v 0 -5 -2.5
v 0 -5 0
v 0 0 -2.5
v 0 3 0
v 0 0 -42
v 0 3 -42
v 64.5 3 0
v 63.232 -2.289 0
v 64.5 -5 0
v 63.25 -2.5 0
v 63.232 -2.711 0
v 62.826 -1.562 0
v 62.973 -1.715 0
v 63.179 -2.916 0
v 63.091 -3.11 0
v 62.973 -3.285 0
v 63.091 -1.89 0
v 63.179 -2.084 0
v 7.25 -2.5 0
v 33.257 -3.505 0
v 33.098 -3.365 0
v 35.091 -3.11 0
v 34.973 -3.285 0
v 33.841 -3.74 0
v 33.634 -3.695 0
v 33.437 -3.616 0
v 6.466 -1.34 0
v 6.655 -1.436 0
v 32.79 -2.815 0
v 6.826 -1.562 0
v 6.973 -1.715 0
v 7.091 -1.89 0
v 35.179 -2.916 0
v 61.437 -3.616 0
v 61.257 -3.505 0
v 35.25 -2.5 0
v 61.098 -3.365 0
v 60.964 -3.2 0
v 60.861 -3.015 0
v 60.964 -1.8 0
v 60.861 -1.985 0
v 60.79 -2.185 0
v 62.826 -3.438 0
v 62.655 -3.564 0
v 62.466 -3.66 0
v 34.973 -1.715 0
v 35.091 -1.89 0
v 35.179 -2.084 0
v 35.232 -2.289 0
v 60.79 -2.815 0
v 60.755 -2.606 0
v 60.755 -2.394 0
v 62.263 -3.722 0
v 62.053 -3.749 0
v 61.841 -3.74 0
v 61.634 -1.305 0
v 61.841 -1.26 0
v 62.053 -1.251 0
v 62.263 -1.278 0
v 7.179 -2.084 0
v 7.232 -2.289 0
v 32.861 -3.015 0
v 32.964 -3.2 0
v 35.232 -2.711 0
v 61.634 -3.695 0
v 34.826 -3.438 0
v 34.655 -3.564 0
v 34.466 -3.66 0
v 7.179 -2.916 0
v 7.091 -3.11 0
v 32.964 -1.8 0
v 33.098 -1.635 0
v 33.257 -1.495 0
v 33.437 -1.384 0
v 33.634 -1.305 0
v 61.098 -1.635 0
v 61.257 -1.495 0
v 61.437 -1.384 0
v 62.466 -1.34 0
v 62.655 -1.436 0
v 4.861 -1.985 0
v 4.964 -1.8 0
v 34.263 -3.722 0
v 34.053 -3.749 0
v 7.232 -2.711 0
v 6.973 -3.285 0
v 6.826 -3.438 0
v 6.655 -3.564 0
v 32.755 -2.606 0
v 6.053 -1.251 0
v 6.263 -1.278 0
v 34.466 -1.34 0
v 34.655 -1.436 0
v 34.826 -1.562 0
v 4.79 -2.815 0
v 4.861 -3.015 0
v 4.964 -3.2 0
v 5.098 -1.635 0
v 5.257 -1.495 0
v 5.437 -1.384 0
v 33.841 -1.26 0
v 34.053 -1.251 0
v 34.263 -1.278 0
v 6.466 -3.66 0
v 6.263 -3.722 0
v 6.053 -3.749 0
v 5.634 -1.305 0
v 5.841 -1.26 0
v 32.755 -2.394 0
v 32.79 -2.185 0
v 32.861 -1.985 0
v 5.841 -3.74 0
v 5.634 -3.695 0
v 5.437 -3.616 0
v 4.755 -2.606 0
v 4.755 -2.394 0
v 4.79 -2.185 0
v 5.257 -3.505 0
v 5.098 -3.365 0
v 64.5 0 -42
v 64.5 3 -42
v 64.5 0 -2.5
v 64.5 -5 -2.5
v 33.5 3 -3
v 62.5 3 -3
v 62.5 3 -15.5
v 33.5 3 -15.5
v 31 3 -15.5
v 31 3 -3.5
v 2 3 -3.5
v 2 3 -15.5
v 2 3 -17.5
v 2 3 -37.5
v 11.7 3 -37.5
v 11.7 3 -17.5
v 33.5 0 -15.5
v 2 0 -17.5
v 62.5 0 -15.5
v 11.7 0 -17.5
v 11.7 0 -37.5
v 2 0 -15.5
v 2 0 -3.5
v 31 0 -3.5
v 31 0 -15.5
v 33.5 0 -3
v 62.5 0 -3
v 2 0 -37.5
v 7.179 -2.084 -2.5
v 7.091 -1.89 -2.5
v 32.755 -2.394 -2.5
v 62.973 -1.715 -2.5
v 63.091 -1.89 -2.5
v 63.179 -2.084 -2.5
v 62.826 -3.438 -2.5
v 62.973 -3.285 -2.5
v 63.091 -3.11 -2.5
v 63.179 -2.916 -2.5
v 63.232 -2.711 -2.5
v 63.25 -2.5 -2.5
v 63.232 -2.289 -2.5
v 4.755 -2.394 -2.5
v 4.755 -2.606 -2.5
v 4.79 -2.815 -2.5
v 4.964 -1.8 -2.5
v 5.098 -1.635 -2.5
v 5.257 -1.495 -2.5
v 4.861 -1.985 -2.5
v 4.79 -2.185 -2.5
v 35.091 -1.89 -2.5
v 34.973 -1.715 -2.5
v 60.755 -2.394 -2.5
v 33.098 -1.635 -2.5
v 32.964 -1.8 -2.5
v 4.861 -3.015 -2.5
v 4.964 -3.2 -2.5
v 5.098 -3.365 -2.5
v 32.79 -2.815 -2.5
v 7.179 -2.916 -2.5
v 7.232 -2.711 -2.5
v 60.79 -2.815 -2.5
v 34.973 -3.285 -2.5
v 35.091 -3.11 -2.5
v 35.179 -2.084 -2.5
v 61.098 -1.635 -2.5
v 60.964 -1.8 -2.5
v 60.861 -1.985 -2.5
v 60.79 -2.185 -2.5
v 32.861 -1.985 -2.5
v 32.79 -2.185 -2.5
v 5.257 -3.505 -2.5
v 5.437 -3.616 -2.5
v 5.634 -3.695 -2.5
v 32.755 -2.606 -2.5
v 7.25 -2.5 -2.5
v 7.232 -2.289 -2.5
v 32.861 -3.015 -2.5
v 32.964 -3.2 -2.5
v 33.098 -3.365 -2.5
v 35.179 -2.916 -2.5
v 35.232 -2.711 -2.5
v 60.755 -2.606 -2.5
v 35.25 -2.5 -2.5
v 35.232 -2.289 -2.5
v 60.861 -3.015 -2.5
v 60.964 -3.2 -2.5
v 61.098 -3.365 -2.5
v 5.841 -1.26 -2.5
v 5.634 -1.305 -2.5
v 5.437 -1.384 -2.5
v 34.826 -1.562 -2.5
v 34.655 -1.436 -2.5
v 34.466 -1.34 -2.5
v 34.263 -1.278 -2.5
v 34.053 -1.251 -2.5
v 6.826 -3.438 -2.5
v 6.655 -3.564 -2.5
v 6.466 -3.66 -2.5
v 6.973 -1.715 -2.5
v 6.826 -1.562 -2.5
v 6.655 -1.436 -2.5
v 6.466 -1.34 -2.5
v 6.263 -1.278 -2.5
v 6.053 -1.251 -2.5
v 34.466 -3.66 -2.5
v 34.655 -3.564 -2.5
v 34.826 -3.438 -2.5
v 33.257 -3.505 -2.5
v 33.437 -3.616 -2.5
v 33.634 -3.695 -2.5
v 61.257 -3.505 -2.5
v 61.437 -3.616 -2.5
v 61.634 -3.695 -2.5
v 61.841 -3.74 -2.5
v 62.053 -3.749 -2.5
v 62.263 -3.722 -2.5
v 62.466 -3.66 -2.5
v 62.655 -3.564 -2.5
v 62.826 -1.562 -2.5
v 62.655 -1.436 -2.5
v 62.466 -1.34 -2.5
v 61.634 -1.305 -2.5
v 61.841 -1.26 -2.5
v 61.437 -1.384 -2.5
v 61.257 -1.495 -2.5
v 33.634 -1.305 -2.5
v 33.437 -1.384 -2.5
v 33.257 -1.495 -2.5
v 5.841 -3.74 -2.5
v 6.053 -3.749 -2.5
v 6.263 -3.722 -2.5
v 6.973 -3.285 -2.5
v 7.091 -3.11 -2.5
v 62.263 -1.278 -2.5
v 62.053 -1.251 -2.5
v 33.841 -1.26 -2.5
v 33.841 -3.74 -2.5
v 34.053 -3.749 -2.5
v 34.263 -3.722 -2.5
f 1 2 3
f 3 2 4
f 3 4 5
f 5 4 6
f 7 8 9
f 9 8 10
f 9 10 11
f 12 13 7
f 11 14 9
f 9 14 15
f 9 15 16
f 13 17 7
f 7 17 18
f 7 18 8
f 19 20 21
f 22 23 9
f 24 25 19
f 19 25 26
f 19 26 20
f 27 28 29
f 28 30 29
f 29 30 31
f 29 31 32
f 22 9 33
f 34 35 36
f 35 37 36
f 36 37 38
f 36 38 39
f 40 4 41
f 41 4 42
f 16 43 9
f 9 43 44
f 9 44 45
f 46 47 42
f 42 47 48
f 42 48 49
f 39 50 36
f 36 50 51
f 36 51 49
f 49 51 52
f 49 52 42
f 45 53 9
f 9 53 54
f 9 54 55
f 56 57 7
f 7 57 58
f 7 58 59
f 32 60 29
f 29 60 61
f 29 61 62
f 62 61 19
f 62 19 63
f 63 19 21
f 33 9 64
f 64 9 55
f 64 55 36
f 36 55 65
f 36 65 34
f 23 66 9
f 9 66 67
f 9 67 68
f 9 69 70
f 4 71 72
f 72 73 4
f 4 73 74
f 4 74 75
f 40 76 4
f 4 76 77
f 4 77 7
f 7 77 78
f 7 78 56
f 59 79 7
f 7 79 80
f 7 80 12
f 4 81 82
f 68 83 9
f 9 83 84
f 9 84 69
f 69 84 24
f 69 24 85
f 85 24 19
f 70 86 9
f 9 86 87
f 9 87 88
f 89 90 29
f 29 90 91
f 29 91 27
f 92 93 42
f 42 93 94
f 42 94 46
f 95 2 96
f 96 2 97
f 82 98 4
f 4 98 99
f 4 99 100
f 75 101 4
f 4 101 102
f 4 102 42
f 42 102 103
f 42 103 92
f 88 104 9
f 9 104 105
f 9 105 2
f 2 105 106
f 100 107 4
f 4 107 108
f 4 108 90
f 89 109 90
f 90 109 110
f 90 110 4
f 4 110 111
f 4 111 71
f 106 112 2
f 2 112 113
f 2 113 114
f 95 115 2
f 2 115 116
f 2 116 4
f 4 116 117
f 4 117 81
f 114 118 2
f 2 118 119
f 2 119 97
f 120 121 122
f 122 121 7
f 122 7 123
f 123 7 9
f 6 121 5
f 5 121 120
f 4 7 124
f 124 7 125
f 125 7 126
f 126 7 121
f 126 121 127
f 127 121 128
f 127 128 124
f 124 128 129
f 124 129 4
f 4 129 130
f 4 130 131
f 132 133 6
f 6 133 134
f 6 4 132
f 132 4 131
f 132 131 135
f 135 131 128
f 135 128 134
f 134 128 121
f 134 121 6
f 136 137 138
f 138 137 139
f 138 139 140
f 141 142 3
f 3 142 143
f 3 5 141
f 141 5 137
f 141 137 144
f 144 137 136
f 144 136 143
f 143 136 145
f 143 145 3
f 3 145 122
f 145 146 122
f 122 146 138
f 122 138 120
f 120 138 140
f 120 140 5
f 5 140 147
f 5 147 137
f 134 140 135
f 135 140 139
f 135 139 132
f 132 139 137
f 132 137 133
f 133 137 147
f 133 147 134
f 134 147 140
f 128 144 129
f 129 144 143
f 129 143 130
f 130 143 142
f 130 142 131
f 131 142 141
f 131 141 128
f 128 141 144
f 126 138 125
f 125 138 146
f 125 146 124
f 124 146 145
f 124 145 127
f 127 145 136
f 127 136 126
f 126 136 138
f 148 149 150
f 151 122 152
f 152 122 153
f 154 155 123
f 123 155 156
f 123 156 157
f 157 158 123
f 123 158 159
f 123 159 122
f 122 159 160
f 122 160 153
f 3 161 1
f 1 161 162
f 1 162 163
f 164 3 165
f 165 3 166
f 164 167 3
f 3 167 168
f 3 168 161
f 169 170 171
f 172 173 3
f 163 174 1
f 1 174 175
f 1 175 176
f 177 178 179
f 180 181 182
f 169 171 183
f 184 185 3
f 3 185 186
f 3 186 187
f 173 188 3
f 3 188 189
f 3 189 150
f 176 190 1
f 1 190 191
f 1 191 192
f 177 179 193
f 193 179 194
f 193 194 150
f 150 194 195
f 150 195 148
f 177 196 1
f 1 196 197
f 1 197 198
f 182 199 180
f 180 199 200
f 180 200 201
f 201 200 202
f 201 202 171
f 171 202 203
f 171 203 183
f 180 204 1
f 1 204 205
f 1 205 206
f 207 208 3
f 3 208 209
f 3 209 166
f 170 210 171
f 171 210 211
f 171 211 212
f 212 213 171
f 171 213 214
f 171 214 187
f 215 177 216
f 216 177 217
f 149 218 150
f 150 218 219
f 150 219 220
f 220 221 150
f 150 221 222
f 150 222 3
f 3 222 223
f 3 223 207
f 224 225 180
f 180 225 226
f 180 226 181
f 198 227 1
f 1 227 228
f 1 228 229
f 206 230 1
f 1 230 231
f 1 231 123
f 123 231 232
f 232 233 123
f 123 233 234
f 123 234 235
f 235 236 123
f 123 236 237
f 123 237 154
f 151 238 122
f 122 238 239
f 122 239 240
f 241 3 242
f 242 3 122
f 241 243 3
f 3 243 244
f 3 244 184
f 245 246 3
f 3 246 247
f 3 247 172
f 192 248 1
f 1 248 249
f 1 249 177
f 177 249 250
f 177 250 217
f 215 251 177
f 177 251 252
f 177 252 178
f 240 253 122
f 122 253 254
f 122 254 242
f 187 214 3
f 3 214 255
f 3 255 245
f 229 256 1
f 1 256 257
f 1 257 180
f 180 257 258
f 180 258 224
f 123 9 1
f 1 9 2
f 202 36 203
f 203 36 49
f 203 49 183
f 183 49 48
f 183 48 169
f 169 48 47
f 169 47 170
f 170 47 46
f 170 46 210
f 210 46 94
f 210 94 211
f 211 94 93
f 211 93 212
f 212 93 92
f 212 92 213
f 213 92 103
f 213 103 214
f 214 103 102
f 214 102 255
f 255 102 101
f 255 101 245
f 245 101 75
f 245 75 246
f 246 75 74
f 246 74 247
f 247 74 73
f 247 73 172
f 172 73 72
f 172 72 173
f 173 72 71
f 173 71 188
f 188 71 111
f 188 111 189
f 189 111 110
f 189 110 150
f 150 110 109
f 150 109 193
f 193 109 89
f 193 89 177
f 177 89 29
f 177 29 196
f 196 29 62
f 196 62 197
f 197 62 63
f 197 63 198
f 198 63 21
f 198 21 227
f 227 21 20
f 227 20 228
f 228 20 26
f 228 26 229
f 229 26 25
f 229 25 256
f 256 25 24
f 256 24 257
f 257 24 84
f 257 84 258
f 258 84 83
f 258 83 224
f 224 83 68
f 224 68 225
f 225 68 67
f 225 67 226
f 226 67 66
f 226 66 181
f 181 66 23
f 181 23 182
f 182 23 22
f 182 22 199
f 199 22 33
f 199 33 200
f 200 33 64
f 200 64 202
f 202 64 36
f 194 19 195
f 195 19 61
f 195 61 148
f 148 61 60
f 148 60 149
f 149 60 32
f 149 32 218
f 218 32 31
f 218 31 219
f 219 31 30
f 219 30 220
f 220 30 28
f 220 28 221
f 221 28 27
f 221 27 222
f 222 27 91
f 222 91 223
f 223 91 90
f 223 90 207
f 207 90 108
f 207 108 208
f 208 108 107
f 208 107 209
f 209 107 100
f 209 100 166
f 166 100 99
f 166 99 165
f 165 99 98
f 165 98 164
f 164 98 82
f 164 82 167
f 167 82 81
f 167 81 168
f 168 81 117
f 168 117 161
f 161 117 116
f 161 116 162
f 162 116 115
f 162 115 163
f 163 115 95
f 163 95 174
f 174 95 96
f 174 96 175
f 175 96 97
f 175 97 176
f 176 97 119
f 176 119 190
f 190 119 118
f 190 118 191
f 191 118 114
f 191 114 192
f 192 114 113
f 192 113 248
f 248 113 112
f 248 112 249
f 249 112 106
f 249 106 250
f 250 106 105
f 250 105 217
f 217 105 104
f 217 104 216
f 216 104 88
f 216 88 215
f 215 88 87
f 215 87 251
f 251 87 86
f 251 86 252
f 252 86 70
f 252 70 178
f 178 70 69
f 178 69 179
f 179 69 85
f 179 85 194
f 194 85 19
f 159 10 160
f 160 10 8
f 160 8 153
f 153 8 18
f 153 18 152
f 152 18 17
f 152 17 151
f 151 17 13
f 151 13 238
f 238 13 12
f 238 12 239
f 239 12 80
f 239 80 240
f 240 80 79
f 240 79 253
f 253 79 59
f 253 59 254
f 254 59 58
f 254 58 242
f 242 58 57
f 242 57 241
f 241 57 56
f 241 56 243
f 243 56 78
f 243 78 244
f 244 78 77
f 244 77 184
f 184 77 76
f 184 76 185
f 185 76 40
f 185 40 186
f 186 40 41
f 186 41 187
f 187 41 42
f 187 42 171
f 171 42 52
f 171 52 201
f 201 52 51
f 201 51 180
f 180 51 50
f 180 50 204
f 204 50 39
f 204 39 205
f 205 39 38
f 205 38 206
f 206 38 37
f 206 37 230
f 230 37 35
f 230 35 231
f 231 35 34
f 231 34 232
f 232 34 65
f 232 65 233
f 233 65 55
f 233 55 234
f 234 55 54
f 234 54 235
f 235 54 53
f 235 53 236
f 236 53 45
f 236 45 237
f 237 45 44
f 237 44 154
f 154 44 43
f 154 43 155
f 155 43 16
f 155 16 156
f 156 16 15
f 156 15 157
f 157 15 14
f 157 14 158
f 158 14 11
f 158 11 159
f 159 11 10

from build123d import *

# Parameters (mm, degrees)
SKETCH1_W           = 64.5
SKETCH1_H           = 42
BOSS_EXTRUDE1_DEPTH = 3
CUT_EXTRUDE1_REACH  = 79.028
SKETCH2_W           = 29
SKETCH2_H           = 12.5
SKETCH2_H_2         = 12
SKETCH2_W_2         = 9.7
SKETCH2_H_3         = 20
SKETCH5_W           = 64.5
SKETCH5_H           = 2.5
BOSS_EXTRUDE4_DEPTH = 5
CUT_EXTRUDE2_REACH  = 79.131
SKETCH4_R           = 1.25


with BuildPart() as part:
    # Sketch1 → Boss-Extrude1 (new body)
    with BuildSketch(Plane(origin=(0, 0, 0), x_dir=(1, 0, 0), z_dir=(0, 1, 0))):
        with Locations((32.25, 21)):
            Rectangle(SKETCH1_W, SKETCH1_H)
    extrude(amount=BOSS_EXTRUDE1_DEPTH)

    # Sketch2 → Cut-Extrude1 (cut, up to next)
    with BuildSketch(Plane(origin=(0, 3, 0), x_dir=(1, 0, 0), z_dir=(0, 1, 0)), mode=Mode.PRIVATE) as cut_extrude1_sk1:
        with Locations((48, 9.25)):
            Rectangle(SKETCH2_W, SKETCH2_H)
    cut_extrude1_tool1 = extrude(cut_extrude1_sk1.sketch, amount=-CUT_EXTRUDE1_REACH, mode=Mode.PRIVATE) & part.part
    # Sketch2 → Cut-Extrude1 (cut, up to next)
    with BuildSketch(Plane(origin=(0, 3, 0), x_dir=(1, 0, 0), z_dir=(0, 1, 0)), mode=Mode.PRIVATE) as cut_extrude1_sk2:
        with Locations((16.5, 9.5)):
            Rectangle(SKETCH2_W, SKETCH2_H_2)
    cut_extrude1_tool2 = extrude(cut_extrude1_sk2.sketch, amount=-CUT_EXTRUDE1_REACH, mode=Mode.PRIVATE) & part.part
    # Sketch2 → Cut-Extrude1 (cut, up to next)
    with BuildSketch(Plane(origin=(0, 3, 0), x_dir=(1, 0, 0), z_dir=(0, 1, 0)), mode=Mode.PRIVATE) as cut_extrude1_sk3:
        with Locations((6.85, 27.5)):
            Rectangle(SKETCH2_W_2, SKETCH2_H_3)
    cut_extrude1_tool3 = extrude(cut_extrude1_sk3.sketch, amount=-CUT_EXTRUDE1_REACH, mode=Mode.PRIVATE) & part.part
    add(cut_extrude1_tool1.solids().sort_by_distance((48, 3, -9.25))[0], mode=Mode.SUBTRACT)
    add(cut_extrude1_tool2.solids().sort_by_distance((16.5, 3, -9.5))[0], mode=Mode.SUBTRACT)
    add(cut_extrude1_tool3.solids().sort_by_distance((6.85, 3, -27.5))[0], mode=Mode.SUBTRACT)

    # Sketch5 → Boss-Extrude4 (add)
    with BuildSketch(Plane.XZ):
        with Locations((32.25, -1.25)):
            Rectangle(SKETCH5_W, SKETCH5_H)
    extrude(amount=BOSS_EXTRUDE4_DEPTH)

    # Sketch4 → Cut-Extrude2 (cut, up to next)
    with BuildSketch(Plane.XY, mode=Mode.PRIVATE) as cut_extrude2_sk1:
        with Locations((62, -2.5)):
            Circle(SKETCH4_R)
    cut_extrude2_tool1 = extrude(cut_extrude2_sk1.sketch, amount=-CUT_EXTRUDE2_REACH, mode=Mode.PRIVATE) & part.part
    # Sketch4 → Cut-Extrude2 (cut, up to next)
    with BuildSketch(Plane.XY, mode=Mode.PRIVATE) as cut_extrude2_sk2:
        with Locations((6, -2.5)):
            Circle(SKETCH4_R)
    cut_extrude2_tool2 = extrude(cut_extrude2_sk2.sketch, amount=-CUT_EXTRUDE2_REACH, mode=Mode.PRIVATE) & part.part
    # Sketch4 → Cut-Extrude2 (cut, up to next)
    with BuildSketch(Plane.XY, mode=Mode.PRIVATE) as cut_extrude2_sk3:
        with Locations((34, -2.5)):
            Circle(SKETCH4_R)
    cut_extrude2_tool3 = extrude(cut_extrude2_sk3.sketch, amount=-CUT_EXTRUDE2_REACH, mode=Mode.PRIVATE) & part.part
    add(cut_extrude2_tool1.solids().sort_by_distance((62, -2.5, 0))[0], mode=Mode.SUBTRACT)
    add(cut_extrude2_tool2.solids().sort_by_distance((6, -2.5, 0))[0], mode=Mode.SUBTRACT)
    add(cut_extrude2_tool3.solids().sort_by_distance((34, -2.5, 0))[0], mode=Mode.SUBTRACT)


solid = part.part
